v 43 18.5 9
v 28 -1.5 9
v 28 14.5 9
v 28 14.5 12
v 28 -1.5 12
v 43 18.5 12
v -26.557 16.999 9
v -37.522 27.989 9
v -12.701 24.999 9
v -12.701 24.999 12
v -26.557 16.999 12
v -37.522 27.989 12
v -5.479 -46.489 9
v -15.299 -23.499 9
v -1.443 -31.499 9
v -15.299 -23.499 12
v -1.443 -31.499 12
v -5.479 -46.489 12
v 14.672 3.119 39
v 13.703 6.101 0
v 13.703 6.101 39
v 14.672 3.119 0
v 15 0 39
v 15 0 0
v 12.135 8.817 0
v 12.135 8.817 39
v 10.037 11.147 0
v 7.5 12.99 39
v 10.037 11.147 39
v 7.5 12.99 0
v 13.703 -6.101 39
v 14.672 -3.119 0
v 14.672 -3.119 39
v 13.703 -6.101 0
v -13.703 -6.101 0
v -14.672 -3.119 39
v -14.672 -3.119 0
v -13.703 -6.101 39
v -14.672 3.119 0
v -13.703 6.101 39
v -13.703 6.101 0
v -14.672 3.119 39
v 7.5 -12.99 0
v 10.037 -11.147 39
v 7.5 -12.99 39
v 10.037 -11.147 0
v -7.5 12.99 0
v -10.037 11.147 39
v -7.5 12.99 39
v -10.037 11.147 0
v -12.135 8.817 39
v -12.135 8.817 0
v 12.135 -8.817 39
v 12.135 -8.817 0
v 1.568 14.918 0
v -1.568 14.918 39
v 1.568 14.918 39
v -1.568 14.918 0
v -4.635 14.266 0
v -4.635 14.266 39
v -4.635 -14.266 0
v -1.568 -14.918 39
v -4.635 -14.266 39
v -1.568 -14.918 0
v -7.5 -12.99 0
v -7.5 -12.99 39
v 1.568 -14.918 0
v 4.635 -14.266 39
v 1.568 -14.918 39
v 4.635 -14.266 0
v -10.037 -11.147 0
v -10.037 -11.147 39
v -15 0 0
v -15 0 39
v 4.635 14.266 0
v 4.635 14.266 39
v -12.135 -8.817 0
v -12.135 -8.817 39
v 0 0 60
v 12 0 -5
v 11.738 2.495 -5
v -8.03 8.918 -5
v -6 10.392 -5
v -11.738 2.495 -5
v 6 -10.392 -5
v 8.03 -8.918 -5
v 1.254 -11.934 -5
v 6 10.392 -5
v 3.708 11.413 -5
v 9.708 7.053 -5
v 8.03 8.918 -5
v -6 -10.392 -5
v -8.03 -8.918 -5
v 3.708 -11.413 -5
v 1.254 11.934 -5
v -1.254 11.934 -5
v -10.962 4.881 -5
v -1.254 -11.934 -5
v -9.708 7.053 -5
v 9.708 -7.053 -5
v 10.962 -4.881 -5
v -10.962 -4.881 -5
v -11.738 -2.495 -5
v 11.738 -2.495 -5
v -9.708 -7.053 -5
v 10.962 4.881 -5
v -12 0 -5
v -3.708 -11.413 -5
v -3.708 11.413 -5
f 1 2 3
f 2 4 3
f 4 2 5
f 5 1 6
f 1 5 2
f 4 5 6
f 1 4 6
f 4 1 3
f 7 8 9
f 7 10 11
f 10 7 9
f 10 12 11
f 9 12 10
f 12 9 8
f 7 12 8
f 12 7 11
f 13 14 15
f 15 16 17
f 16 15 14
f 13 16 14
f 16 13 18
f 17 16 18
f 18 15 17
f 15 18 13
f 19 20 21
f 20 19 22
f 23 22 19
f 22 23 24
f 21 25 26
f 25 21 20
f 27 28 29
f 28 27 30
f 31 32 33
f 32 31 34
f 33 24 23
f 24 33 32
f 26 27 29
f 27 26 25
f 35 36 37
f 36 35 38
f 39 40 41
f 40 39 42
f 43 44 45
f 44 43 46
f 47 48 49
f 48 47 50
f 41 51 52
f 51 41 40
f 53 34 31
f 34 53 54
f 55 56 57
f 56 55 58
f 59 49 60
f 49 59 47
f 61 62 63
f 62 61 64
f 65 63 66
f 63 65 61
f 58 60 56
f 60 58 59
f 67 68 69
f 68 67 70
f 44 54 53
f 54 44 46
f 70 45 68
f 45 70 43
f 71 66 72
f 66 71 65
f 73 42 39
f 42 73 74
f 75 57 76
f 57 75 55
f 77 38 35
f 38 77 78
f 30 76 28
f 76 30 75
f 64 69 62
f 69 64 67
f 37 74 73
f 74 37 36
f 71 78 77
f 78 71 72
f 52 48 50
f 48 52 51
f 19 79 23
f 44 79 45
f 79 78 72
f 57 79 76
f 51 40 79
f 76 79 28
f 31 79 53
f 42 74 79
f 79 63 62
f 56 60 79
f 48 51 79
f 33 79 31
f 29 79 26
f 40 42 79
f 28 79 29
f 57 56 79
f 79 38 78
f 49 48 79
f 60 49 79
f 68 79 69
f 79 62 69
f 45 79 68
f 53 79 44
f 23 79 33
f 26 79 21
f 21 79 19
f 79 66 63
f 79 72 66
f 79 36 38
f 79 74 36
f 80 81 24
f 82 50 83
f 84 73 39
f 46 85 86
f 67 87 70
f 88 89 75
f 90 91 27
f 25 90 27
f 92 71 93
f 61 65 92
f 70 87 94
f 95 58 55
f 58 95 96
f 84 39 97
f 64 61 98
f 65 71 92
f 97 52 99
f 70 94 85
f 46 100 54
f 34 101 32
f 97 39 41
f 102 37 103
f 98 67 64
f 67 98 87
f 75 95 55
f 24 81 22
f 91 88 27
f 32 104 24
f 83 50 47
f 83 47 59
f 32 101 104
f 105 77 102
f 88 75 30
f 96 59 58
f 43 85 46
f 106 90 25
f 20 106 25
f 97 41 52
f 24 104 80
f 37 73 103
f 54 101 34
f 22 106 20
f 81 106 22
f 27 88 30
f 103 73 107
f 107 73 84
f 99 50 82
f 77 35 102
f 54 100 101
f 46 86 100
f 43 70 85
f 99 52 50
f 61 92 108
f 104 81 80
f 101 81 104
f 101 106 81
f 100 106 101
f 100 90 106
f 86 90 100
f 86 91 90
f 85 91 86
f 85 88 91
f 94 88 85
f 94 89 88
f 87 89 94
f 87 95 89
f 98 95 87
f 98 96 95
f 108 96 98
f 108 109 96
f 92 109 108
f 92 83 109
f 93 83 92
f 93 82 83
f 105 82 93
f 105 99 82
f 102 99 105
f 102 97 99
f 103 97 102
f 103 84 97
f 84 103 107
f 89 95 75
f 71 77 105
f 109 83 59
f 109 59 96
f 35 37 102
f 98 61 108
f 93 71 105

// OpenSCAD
// Rocket Ship - Odin's 3D Prints
// Simple rocket with fins and nose cone - print ready

rocket_length = 60;
rocket_radius = 15;
fins = 3;
fin_height = 20;
fin_thickness = 3;

module fin() {
    translate([0, -fin_thickness/2, 0])
    linear_extrude(height=fin_thickness)
    polygon(points=[
        [rocket_radius, 0],
        [rocket_radius + 15, fin_height],
        [rocket_radius, fin_height * 0.8]
    ]);
}

module rocket() {
    // Main body
    cylinder(h=rocket_length * 0.65, r=rocket_radius, center=false);
    
    // Nose cone
    translate([0, 0, rocket_length * 0.65])
    cylinder(h=rocket_length * 0.35, r1=rocket_radius, r2=0, center=false);
    
    // Engine base
    translate([0, 0, -5])
    cylinder(h=5, r1=12, r2=rocket_radius, center=false);
    
    // Fins
    for (i = [0: fins-1]) {
        rotate([0, 0, i * 360 / fins])
        translate([rocket_radius - 2, 0, rocket_length * 0.15])
        fin();
    }
}

rocket();
